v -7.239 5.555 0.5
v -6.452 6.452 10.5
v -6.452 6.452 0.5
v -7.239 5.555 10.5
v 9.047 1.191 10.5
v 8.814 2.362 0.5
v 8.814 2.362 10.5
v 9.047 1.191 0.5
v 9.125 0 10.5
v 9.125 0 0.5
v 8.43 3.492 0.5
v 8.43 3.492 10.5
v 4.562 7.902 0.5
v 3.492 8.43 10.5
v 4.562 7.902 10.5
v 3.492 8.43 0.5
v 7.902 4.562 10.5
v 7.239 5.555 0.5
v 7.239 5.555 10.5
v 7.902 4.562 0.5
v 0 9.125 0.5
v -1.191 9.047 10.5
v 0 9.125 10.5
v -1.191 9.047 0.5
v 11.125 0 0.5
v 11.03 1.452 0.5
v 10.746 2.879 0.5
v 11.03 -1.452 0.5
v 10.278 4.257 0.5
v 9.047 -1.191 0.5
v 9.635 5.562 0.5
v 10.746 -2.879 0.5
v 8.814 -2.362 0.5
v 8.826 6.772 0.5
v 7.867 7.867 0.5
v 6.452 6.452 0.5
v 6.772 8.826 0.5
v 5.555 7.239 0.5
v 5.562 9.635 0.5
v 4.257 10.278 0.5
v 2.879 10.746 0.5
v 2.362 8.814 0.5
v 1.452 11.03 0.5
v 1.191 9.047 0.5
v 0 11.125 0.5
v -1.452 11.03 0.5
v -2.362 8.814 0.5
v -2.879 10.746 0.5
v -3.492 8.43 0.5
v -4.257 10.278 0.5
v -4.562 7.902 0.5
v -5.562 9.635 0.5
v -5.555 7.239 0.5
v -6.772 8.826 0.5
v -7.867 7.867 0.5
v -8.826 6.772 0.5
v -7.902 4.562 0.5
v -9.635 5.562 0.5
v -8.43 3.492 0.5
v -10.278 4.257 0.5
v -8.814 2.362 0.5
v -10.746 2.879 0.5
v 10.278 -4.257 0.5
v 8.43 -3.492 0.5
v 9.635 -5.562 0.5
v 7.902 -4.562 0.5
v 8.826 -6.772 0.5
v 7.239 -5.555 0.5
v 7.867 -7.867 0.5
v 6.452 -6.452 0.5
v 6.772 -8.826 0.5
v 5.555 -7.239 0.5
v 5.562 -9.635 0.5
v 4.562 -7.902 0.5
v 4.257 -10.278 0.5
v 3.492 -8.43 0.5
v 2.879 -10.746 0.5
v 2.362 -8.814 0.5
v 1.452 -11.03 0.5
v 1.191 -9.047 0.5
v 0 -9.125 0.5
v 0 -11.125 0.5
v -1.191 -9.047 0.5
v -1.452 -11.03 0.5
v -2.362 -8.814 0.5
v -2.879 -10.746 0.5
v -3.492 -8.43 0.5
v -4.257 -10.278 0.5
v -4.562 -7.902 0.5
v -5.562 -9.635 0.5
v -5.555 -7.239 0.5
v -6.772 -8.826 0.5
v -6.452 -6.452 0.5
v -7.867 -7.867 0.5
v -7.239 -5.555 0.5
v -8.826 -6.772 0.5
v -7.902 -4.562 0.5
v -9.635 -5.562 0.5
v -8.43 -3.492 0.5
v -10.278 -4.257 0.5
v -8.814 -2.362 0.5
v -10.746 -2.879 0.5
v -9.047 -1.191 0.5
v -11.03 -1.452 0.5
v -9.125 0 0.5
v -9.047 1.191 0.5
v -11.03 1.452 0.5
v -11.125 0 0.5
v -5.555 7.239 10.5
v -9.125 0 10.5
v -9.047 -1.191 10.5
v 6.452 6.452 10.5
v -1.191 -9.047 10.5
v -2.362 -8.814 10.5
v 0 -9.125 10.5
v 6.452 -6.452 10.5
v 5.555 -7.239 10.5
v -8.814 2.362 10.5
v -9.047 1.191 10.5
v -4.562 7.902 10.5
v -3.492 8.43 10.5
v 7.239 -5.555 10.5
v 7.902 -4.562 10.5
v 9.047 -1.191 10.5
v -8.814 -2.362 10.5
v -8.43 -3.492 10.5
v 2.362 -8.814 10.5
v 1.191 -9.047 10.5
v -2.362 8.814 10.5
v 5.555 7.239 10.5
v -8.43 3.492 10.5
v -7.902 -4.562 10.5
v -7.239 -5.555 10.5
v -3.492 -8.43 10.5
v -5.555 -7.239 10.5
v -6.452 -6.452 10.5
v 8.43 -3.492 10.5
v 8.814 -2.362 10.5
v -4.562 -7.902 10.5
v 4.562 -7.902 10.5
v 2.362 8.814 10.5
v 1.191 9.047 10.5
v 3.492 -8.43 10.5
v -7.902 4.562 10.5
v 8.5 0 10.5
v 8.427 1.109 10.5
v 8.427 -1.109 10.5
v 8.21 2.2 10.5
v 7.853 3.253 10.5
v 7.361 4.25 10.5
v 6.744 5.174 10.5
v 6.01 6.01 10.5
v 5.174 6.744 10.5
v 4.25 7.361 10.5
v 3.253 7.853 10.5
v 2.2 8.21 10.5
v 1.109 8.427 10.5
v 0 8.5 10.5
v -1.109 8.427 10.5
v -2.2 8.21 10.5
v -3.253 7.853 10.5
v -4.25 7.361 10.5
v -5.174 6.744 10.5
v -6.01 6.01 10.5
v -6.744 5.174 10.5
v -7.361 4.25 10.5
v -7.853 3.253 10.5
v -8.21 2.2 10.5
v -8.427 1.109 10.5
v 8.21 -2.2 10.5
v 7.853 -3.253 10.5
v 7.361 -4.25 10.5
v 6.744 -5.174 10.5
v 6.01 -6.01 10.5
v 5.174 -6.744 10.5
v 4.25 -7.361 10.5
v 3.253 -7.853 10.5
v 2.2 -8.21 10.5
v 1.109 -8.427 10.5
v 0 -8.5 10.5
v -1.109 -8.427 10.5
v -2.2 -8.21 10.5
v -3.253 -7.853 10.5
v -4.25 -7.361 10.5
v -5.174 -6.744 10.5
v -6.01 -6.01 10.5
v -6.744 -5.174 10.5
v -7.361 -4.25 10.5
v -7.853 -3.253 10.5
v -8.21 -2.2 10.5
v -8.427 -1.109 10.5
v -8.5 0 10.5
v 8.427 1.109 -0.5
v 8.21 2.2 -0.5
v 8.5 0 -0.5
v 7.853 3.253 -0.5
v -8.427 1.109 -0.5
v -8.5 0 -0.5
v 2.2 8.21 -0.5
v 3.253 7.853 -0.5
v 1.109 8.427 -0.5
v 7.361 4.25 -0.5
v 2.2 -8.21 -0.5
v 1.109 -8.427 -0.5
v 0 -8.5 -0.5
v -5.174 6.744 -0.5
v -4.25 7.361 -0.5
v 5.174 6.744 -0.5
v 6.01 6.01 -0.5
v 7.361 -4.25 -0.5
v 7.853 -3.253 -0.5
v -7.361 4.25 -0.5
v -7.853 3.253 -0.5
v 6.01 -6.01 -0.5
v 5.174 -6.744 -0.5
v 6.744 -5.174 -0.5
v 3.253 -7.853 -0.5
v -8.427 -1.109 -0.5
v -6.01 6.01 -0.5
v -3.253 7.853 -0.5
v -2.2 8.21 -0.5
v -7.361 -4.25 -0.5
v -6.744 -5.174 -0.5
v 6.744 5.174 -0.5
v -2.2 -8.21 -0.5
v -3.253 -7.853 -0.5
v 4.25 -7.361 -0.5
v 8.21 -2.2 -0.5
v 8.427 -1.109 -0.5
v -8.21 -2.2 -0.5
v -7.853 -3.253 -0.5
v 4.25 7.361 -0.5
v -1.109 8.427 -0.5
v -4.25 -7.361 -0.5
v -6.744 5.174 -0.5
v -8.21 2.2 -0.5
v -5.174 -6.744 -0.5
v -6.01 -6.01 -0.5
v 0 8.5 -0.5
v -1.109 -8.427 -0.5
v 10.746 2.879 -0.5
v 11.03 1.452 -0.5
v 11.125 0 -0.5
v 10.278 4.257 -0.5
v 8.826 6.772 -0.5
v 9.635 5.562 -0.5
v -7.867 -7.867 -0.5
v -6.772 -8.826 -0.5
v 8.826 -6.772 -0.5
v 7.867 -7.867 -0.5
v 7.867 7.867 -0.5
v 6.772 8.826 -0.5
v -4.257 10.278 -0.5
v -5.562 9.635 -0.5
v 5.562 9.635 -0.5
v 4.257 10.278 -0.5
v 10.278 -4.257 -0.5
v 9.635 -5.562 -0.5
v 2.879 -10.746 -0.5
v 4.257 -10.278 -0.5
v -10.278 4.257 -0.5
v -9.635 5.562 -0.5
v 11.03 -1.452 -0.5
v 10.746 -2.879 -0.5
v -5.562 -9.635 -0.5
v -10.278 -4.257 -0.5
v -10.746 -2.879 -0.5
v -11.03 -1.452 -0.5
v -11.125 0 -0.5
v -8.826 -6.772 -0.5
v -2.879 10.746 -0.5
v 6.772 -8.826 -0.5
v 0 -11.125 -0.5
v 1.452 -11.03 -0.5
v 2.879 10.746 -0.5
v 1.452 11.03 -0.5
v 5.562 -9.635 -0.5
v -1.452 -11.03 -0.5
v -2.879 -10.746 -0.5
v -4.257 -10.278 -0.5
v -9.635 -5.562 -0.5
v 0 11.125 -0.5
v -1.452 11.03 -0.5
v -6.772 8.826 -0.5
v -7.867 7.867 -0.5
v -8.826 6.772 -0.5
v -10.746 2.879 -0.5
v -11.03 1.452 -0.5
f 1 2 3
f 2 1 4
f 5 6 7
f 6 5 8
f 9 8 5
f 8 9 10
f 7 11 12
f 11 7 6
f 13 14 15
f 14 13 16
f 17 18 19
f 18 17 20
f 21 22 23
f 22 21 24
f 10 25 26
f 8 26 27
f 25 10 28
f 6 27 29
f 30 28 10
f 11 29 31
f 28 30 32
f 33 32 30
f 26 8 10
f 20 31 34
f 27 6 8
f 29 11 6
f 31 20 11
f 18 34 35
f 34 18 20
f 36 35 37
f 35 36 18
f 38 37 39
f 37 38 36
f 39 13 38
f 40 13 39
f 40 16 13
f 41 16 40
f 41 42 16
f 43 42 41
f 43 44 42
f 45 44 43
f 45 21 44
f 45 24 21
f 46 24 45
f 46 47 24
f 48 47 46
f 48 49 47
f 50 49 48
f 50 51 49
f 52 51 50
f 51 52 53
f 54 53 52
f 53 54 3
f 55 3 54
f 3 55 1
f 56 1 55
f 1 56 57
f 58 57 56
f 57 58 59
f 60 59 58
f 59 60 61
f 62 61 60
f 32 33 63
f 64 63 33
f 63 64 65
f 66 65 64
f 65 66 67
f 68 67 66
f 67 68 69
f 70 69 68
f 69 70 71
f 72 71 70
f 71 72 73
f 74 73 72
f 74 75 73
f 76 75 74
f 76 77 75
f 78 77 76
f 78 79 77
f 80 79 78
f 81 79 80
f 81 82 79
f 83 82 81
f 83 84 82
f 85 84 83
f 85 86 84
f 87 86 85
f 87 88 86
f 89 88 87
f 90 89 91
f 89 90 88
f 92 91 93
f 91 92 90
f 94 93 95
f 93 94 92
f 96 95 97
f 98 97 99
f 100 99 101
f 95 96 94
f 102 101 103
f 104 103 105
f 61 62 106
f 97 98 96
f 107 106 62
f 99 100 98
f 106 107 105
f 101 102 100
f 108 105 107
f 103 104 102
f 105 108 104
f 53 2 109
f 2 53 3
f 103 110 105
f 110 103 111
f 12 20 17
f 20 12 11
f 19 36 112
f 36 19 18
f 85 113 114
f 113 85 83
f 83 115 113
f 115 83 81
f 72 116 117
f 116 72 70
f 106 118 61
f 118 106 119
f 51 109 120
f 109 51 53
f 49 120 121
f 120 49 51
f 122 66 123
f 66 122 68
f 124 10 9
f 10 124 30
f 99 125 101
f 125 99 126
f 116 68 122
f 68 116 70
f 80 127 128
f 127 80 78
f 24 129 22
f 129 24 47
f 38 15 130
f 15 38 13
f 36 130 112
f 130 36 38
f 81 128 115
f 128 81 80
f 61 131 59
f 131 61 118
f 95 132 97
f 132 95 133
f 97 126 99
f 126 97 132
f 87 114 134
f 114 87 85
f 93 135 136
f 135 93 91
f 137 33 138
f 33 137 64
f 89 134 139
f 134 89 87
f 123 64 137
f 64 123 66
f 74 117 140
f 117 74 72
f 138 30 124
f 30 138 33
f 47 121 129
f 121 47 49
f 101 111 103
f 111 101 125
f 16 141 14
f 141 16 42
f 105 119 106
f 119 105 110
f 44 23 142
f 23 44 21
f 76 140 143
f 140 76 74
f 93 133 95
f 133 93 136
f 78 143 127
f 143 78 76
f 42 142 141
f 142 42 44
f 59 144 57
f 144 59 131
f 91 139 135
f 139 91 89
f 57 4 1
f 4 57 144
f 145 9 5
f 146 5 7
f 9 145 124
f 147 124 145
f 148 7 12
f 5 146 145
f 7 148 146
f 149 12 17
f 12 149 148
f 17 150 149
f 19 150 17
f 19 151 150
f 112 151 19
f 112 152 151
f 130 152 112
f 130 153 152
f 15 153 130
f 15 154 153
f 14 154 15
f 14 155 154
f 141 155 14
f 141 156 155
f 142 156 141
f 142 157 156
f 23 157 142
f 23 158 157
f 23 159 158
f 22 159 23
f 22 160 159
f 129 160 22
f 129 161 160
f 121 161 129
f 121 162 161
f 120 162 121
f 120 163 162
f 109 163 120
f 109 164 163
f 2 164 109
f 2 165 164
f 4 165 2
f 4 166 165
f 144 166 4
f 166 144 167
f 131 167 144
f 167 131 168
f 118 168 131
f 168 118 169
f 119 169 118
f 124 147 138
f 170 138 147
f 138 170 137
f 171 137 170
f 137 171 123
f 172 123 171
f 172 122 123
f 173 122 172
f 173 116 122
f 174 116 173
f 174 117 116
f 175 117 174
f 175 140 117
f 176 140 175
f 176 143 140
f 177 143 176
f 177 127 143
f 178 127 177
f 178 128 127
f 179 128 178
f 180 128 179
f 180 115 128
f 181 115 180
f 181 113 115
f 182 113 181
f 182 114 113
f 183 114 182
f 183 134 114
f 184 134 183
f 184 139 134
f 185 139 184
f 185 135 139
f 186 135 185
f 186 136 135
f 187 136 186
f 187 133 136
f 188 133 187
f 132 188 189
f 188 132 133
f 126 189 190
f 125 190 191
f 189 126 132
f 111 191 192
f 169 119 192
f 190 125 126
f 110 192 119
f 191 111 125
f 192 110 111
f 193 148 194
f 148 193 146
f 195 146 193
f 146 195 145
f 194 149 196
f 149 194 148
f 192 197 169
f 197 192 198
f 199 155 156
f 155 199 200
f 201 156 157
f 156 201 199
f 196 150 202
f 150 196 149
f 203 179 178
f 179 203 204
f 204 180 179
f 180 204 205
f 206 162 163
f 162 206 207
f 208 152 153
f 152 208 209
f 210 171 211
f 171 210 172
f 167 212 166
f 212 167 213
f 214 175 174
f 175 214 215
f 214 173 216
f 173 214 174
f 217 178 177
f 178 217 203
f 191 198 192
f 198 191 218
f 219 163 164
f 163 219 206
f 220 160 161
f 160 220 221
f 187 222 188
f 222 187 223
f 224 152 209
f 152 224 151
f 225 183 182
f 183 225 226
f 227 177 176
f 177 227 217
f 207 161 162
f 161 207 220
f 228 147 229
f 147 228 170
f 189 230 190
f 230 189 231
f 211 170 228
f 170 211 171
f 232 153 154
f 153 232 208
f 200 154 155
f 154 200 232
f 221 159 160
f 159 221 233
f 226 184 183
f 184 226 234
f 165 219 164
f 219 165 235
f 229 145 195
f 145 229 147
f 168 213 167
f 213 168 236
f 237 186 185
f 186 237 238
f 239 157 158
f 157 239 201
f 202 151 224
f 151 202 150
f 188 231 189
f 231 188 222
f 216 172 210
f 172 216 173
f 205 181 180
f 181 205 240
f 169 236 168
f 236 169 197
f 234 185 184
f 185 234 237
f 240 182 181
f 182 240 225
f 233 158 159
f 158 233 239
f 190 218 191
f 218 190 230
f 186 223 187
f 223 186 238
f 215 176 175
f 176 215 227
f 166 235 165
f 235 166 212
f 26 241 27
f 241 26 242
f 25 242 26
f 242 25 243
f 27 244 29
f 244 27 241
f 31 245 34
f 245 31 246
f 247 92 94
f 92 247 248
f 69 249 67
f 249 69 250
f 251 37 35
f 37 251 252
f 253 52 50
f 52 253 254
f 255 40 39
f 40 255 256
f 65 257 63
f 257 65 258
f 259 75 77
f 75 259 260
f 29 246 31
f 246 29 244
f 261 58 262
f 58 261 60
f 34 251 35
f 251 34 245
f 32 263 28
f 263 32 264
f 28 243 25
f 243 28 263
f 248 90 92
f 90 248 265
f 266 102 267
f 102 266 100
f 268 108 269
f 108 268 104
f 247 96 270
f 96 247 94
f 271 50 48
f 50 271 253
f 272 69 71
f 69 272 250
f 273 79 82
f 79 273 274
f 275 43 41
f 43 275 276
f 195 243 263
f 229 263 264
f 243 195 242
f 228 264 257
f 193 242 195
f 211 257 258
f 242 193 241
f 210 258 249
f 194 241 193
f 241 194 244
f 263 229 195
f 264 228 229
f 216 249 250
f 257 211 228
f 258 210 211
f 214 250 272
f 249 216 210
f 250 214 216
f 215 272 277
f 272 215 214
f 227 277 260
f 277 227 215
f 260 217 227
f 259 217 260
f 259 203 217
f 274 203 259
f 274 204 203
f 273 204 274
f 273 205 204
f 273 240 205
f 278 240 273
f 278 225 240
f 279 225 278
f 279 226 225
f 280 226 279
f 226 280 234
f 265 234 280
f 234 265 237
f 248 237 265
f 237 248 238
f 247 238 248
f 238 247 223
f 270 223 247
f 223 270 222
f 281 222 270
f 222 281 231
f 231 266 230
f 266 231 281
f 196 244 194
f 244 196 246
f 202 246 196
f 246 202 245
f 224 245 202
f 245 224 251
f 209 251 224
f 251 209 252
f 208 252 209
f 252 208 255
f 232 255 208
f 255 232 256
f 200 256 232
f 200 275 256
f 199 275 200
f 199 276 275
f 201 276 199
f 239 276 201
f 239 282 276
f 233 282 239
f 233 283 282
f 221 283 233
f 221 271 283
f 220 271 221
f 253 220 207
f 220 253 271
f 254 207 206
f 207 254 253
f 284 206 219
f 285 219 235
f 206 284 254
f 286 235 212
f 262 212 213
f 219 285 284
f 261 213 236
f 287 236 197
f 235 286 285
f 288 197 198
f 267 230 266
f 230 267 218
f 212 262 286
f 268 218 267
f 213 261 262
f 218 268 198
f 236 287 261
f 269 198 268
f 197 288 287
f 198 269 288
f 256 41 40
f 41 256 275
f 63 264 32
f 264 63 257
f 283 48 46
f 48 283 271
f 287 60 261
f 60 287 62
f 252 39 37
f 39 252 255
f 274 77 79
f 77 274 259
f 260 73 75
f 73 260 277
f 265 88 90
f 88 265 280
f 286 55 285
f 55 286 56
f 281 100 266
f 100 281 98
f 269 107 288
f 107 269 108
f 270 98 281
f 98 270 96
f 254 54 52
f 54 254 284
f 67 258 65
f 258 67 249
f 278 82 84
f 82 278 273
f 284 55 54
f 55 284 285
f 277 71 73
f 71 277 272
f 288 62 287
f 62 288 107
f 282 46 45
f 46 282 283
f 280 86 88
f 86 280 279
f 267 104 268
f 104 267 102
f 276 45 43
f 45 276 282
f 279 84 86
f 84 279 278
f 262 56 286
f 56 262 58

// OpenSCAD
adapter_diameter=18.25;
syringe_diameter=17;
height=10;
offset_width=2;
offset_height=1; 

$fn=48;

module inner()
{
	cylinder(center=true, h=height, d=syringe_diameter);
}

module offset()
{
	difference() {
		cylinder(center=true, h=offset_height, d=offset_width*2+adapter_diameter);
		inner();
	}
}

module adapter_5cc()
{
	difference() {
		cylinder(center=true, h=height, d=adapter_diameter);
		inner();
	}
}

module main() {
	translate([0,0,height/2+offset_height/2]) adapter_5cc();
	offset();
}

main();
